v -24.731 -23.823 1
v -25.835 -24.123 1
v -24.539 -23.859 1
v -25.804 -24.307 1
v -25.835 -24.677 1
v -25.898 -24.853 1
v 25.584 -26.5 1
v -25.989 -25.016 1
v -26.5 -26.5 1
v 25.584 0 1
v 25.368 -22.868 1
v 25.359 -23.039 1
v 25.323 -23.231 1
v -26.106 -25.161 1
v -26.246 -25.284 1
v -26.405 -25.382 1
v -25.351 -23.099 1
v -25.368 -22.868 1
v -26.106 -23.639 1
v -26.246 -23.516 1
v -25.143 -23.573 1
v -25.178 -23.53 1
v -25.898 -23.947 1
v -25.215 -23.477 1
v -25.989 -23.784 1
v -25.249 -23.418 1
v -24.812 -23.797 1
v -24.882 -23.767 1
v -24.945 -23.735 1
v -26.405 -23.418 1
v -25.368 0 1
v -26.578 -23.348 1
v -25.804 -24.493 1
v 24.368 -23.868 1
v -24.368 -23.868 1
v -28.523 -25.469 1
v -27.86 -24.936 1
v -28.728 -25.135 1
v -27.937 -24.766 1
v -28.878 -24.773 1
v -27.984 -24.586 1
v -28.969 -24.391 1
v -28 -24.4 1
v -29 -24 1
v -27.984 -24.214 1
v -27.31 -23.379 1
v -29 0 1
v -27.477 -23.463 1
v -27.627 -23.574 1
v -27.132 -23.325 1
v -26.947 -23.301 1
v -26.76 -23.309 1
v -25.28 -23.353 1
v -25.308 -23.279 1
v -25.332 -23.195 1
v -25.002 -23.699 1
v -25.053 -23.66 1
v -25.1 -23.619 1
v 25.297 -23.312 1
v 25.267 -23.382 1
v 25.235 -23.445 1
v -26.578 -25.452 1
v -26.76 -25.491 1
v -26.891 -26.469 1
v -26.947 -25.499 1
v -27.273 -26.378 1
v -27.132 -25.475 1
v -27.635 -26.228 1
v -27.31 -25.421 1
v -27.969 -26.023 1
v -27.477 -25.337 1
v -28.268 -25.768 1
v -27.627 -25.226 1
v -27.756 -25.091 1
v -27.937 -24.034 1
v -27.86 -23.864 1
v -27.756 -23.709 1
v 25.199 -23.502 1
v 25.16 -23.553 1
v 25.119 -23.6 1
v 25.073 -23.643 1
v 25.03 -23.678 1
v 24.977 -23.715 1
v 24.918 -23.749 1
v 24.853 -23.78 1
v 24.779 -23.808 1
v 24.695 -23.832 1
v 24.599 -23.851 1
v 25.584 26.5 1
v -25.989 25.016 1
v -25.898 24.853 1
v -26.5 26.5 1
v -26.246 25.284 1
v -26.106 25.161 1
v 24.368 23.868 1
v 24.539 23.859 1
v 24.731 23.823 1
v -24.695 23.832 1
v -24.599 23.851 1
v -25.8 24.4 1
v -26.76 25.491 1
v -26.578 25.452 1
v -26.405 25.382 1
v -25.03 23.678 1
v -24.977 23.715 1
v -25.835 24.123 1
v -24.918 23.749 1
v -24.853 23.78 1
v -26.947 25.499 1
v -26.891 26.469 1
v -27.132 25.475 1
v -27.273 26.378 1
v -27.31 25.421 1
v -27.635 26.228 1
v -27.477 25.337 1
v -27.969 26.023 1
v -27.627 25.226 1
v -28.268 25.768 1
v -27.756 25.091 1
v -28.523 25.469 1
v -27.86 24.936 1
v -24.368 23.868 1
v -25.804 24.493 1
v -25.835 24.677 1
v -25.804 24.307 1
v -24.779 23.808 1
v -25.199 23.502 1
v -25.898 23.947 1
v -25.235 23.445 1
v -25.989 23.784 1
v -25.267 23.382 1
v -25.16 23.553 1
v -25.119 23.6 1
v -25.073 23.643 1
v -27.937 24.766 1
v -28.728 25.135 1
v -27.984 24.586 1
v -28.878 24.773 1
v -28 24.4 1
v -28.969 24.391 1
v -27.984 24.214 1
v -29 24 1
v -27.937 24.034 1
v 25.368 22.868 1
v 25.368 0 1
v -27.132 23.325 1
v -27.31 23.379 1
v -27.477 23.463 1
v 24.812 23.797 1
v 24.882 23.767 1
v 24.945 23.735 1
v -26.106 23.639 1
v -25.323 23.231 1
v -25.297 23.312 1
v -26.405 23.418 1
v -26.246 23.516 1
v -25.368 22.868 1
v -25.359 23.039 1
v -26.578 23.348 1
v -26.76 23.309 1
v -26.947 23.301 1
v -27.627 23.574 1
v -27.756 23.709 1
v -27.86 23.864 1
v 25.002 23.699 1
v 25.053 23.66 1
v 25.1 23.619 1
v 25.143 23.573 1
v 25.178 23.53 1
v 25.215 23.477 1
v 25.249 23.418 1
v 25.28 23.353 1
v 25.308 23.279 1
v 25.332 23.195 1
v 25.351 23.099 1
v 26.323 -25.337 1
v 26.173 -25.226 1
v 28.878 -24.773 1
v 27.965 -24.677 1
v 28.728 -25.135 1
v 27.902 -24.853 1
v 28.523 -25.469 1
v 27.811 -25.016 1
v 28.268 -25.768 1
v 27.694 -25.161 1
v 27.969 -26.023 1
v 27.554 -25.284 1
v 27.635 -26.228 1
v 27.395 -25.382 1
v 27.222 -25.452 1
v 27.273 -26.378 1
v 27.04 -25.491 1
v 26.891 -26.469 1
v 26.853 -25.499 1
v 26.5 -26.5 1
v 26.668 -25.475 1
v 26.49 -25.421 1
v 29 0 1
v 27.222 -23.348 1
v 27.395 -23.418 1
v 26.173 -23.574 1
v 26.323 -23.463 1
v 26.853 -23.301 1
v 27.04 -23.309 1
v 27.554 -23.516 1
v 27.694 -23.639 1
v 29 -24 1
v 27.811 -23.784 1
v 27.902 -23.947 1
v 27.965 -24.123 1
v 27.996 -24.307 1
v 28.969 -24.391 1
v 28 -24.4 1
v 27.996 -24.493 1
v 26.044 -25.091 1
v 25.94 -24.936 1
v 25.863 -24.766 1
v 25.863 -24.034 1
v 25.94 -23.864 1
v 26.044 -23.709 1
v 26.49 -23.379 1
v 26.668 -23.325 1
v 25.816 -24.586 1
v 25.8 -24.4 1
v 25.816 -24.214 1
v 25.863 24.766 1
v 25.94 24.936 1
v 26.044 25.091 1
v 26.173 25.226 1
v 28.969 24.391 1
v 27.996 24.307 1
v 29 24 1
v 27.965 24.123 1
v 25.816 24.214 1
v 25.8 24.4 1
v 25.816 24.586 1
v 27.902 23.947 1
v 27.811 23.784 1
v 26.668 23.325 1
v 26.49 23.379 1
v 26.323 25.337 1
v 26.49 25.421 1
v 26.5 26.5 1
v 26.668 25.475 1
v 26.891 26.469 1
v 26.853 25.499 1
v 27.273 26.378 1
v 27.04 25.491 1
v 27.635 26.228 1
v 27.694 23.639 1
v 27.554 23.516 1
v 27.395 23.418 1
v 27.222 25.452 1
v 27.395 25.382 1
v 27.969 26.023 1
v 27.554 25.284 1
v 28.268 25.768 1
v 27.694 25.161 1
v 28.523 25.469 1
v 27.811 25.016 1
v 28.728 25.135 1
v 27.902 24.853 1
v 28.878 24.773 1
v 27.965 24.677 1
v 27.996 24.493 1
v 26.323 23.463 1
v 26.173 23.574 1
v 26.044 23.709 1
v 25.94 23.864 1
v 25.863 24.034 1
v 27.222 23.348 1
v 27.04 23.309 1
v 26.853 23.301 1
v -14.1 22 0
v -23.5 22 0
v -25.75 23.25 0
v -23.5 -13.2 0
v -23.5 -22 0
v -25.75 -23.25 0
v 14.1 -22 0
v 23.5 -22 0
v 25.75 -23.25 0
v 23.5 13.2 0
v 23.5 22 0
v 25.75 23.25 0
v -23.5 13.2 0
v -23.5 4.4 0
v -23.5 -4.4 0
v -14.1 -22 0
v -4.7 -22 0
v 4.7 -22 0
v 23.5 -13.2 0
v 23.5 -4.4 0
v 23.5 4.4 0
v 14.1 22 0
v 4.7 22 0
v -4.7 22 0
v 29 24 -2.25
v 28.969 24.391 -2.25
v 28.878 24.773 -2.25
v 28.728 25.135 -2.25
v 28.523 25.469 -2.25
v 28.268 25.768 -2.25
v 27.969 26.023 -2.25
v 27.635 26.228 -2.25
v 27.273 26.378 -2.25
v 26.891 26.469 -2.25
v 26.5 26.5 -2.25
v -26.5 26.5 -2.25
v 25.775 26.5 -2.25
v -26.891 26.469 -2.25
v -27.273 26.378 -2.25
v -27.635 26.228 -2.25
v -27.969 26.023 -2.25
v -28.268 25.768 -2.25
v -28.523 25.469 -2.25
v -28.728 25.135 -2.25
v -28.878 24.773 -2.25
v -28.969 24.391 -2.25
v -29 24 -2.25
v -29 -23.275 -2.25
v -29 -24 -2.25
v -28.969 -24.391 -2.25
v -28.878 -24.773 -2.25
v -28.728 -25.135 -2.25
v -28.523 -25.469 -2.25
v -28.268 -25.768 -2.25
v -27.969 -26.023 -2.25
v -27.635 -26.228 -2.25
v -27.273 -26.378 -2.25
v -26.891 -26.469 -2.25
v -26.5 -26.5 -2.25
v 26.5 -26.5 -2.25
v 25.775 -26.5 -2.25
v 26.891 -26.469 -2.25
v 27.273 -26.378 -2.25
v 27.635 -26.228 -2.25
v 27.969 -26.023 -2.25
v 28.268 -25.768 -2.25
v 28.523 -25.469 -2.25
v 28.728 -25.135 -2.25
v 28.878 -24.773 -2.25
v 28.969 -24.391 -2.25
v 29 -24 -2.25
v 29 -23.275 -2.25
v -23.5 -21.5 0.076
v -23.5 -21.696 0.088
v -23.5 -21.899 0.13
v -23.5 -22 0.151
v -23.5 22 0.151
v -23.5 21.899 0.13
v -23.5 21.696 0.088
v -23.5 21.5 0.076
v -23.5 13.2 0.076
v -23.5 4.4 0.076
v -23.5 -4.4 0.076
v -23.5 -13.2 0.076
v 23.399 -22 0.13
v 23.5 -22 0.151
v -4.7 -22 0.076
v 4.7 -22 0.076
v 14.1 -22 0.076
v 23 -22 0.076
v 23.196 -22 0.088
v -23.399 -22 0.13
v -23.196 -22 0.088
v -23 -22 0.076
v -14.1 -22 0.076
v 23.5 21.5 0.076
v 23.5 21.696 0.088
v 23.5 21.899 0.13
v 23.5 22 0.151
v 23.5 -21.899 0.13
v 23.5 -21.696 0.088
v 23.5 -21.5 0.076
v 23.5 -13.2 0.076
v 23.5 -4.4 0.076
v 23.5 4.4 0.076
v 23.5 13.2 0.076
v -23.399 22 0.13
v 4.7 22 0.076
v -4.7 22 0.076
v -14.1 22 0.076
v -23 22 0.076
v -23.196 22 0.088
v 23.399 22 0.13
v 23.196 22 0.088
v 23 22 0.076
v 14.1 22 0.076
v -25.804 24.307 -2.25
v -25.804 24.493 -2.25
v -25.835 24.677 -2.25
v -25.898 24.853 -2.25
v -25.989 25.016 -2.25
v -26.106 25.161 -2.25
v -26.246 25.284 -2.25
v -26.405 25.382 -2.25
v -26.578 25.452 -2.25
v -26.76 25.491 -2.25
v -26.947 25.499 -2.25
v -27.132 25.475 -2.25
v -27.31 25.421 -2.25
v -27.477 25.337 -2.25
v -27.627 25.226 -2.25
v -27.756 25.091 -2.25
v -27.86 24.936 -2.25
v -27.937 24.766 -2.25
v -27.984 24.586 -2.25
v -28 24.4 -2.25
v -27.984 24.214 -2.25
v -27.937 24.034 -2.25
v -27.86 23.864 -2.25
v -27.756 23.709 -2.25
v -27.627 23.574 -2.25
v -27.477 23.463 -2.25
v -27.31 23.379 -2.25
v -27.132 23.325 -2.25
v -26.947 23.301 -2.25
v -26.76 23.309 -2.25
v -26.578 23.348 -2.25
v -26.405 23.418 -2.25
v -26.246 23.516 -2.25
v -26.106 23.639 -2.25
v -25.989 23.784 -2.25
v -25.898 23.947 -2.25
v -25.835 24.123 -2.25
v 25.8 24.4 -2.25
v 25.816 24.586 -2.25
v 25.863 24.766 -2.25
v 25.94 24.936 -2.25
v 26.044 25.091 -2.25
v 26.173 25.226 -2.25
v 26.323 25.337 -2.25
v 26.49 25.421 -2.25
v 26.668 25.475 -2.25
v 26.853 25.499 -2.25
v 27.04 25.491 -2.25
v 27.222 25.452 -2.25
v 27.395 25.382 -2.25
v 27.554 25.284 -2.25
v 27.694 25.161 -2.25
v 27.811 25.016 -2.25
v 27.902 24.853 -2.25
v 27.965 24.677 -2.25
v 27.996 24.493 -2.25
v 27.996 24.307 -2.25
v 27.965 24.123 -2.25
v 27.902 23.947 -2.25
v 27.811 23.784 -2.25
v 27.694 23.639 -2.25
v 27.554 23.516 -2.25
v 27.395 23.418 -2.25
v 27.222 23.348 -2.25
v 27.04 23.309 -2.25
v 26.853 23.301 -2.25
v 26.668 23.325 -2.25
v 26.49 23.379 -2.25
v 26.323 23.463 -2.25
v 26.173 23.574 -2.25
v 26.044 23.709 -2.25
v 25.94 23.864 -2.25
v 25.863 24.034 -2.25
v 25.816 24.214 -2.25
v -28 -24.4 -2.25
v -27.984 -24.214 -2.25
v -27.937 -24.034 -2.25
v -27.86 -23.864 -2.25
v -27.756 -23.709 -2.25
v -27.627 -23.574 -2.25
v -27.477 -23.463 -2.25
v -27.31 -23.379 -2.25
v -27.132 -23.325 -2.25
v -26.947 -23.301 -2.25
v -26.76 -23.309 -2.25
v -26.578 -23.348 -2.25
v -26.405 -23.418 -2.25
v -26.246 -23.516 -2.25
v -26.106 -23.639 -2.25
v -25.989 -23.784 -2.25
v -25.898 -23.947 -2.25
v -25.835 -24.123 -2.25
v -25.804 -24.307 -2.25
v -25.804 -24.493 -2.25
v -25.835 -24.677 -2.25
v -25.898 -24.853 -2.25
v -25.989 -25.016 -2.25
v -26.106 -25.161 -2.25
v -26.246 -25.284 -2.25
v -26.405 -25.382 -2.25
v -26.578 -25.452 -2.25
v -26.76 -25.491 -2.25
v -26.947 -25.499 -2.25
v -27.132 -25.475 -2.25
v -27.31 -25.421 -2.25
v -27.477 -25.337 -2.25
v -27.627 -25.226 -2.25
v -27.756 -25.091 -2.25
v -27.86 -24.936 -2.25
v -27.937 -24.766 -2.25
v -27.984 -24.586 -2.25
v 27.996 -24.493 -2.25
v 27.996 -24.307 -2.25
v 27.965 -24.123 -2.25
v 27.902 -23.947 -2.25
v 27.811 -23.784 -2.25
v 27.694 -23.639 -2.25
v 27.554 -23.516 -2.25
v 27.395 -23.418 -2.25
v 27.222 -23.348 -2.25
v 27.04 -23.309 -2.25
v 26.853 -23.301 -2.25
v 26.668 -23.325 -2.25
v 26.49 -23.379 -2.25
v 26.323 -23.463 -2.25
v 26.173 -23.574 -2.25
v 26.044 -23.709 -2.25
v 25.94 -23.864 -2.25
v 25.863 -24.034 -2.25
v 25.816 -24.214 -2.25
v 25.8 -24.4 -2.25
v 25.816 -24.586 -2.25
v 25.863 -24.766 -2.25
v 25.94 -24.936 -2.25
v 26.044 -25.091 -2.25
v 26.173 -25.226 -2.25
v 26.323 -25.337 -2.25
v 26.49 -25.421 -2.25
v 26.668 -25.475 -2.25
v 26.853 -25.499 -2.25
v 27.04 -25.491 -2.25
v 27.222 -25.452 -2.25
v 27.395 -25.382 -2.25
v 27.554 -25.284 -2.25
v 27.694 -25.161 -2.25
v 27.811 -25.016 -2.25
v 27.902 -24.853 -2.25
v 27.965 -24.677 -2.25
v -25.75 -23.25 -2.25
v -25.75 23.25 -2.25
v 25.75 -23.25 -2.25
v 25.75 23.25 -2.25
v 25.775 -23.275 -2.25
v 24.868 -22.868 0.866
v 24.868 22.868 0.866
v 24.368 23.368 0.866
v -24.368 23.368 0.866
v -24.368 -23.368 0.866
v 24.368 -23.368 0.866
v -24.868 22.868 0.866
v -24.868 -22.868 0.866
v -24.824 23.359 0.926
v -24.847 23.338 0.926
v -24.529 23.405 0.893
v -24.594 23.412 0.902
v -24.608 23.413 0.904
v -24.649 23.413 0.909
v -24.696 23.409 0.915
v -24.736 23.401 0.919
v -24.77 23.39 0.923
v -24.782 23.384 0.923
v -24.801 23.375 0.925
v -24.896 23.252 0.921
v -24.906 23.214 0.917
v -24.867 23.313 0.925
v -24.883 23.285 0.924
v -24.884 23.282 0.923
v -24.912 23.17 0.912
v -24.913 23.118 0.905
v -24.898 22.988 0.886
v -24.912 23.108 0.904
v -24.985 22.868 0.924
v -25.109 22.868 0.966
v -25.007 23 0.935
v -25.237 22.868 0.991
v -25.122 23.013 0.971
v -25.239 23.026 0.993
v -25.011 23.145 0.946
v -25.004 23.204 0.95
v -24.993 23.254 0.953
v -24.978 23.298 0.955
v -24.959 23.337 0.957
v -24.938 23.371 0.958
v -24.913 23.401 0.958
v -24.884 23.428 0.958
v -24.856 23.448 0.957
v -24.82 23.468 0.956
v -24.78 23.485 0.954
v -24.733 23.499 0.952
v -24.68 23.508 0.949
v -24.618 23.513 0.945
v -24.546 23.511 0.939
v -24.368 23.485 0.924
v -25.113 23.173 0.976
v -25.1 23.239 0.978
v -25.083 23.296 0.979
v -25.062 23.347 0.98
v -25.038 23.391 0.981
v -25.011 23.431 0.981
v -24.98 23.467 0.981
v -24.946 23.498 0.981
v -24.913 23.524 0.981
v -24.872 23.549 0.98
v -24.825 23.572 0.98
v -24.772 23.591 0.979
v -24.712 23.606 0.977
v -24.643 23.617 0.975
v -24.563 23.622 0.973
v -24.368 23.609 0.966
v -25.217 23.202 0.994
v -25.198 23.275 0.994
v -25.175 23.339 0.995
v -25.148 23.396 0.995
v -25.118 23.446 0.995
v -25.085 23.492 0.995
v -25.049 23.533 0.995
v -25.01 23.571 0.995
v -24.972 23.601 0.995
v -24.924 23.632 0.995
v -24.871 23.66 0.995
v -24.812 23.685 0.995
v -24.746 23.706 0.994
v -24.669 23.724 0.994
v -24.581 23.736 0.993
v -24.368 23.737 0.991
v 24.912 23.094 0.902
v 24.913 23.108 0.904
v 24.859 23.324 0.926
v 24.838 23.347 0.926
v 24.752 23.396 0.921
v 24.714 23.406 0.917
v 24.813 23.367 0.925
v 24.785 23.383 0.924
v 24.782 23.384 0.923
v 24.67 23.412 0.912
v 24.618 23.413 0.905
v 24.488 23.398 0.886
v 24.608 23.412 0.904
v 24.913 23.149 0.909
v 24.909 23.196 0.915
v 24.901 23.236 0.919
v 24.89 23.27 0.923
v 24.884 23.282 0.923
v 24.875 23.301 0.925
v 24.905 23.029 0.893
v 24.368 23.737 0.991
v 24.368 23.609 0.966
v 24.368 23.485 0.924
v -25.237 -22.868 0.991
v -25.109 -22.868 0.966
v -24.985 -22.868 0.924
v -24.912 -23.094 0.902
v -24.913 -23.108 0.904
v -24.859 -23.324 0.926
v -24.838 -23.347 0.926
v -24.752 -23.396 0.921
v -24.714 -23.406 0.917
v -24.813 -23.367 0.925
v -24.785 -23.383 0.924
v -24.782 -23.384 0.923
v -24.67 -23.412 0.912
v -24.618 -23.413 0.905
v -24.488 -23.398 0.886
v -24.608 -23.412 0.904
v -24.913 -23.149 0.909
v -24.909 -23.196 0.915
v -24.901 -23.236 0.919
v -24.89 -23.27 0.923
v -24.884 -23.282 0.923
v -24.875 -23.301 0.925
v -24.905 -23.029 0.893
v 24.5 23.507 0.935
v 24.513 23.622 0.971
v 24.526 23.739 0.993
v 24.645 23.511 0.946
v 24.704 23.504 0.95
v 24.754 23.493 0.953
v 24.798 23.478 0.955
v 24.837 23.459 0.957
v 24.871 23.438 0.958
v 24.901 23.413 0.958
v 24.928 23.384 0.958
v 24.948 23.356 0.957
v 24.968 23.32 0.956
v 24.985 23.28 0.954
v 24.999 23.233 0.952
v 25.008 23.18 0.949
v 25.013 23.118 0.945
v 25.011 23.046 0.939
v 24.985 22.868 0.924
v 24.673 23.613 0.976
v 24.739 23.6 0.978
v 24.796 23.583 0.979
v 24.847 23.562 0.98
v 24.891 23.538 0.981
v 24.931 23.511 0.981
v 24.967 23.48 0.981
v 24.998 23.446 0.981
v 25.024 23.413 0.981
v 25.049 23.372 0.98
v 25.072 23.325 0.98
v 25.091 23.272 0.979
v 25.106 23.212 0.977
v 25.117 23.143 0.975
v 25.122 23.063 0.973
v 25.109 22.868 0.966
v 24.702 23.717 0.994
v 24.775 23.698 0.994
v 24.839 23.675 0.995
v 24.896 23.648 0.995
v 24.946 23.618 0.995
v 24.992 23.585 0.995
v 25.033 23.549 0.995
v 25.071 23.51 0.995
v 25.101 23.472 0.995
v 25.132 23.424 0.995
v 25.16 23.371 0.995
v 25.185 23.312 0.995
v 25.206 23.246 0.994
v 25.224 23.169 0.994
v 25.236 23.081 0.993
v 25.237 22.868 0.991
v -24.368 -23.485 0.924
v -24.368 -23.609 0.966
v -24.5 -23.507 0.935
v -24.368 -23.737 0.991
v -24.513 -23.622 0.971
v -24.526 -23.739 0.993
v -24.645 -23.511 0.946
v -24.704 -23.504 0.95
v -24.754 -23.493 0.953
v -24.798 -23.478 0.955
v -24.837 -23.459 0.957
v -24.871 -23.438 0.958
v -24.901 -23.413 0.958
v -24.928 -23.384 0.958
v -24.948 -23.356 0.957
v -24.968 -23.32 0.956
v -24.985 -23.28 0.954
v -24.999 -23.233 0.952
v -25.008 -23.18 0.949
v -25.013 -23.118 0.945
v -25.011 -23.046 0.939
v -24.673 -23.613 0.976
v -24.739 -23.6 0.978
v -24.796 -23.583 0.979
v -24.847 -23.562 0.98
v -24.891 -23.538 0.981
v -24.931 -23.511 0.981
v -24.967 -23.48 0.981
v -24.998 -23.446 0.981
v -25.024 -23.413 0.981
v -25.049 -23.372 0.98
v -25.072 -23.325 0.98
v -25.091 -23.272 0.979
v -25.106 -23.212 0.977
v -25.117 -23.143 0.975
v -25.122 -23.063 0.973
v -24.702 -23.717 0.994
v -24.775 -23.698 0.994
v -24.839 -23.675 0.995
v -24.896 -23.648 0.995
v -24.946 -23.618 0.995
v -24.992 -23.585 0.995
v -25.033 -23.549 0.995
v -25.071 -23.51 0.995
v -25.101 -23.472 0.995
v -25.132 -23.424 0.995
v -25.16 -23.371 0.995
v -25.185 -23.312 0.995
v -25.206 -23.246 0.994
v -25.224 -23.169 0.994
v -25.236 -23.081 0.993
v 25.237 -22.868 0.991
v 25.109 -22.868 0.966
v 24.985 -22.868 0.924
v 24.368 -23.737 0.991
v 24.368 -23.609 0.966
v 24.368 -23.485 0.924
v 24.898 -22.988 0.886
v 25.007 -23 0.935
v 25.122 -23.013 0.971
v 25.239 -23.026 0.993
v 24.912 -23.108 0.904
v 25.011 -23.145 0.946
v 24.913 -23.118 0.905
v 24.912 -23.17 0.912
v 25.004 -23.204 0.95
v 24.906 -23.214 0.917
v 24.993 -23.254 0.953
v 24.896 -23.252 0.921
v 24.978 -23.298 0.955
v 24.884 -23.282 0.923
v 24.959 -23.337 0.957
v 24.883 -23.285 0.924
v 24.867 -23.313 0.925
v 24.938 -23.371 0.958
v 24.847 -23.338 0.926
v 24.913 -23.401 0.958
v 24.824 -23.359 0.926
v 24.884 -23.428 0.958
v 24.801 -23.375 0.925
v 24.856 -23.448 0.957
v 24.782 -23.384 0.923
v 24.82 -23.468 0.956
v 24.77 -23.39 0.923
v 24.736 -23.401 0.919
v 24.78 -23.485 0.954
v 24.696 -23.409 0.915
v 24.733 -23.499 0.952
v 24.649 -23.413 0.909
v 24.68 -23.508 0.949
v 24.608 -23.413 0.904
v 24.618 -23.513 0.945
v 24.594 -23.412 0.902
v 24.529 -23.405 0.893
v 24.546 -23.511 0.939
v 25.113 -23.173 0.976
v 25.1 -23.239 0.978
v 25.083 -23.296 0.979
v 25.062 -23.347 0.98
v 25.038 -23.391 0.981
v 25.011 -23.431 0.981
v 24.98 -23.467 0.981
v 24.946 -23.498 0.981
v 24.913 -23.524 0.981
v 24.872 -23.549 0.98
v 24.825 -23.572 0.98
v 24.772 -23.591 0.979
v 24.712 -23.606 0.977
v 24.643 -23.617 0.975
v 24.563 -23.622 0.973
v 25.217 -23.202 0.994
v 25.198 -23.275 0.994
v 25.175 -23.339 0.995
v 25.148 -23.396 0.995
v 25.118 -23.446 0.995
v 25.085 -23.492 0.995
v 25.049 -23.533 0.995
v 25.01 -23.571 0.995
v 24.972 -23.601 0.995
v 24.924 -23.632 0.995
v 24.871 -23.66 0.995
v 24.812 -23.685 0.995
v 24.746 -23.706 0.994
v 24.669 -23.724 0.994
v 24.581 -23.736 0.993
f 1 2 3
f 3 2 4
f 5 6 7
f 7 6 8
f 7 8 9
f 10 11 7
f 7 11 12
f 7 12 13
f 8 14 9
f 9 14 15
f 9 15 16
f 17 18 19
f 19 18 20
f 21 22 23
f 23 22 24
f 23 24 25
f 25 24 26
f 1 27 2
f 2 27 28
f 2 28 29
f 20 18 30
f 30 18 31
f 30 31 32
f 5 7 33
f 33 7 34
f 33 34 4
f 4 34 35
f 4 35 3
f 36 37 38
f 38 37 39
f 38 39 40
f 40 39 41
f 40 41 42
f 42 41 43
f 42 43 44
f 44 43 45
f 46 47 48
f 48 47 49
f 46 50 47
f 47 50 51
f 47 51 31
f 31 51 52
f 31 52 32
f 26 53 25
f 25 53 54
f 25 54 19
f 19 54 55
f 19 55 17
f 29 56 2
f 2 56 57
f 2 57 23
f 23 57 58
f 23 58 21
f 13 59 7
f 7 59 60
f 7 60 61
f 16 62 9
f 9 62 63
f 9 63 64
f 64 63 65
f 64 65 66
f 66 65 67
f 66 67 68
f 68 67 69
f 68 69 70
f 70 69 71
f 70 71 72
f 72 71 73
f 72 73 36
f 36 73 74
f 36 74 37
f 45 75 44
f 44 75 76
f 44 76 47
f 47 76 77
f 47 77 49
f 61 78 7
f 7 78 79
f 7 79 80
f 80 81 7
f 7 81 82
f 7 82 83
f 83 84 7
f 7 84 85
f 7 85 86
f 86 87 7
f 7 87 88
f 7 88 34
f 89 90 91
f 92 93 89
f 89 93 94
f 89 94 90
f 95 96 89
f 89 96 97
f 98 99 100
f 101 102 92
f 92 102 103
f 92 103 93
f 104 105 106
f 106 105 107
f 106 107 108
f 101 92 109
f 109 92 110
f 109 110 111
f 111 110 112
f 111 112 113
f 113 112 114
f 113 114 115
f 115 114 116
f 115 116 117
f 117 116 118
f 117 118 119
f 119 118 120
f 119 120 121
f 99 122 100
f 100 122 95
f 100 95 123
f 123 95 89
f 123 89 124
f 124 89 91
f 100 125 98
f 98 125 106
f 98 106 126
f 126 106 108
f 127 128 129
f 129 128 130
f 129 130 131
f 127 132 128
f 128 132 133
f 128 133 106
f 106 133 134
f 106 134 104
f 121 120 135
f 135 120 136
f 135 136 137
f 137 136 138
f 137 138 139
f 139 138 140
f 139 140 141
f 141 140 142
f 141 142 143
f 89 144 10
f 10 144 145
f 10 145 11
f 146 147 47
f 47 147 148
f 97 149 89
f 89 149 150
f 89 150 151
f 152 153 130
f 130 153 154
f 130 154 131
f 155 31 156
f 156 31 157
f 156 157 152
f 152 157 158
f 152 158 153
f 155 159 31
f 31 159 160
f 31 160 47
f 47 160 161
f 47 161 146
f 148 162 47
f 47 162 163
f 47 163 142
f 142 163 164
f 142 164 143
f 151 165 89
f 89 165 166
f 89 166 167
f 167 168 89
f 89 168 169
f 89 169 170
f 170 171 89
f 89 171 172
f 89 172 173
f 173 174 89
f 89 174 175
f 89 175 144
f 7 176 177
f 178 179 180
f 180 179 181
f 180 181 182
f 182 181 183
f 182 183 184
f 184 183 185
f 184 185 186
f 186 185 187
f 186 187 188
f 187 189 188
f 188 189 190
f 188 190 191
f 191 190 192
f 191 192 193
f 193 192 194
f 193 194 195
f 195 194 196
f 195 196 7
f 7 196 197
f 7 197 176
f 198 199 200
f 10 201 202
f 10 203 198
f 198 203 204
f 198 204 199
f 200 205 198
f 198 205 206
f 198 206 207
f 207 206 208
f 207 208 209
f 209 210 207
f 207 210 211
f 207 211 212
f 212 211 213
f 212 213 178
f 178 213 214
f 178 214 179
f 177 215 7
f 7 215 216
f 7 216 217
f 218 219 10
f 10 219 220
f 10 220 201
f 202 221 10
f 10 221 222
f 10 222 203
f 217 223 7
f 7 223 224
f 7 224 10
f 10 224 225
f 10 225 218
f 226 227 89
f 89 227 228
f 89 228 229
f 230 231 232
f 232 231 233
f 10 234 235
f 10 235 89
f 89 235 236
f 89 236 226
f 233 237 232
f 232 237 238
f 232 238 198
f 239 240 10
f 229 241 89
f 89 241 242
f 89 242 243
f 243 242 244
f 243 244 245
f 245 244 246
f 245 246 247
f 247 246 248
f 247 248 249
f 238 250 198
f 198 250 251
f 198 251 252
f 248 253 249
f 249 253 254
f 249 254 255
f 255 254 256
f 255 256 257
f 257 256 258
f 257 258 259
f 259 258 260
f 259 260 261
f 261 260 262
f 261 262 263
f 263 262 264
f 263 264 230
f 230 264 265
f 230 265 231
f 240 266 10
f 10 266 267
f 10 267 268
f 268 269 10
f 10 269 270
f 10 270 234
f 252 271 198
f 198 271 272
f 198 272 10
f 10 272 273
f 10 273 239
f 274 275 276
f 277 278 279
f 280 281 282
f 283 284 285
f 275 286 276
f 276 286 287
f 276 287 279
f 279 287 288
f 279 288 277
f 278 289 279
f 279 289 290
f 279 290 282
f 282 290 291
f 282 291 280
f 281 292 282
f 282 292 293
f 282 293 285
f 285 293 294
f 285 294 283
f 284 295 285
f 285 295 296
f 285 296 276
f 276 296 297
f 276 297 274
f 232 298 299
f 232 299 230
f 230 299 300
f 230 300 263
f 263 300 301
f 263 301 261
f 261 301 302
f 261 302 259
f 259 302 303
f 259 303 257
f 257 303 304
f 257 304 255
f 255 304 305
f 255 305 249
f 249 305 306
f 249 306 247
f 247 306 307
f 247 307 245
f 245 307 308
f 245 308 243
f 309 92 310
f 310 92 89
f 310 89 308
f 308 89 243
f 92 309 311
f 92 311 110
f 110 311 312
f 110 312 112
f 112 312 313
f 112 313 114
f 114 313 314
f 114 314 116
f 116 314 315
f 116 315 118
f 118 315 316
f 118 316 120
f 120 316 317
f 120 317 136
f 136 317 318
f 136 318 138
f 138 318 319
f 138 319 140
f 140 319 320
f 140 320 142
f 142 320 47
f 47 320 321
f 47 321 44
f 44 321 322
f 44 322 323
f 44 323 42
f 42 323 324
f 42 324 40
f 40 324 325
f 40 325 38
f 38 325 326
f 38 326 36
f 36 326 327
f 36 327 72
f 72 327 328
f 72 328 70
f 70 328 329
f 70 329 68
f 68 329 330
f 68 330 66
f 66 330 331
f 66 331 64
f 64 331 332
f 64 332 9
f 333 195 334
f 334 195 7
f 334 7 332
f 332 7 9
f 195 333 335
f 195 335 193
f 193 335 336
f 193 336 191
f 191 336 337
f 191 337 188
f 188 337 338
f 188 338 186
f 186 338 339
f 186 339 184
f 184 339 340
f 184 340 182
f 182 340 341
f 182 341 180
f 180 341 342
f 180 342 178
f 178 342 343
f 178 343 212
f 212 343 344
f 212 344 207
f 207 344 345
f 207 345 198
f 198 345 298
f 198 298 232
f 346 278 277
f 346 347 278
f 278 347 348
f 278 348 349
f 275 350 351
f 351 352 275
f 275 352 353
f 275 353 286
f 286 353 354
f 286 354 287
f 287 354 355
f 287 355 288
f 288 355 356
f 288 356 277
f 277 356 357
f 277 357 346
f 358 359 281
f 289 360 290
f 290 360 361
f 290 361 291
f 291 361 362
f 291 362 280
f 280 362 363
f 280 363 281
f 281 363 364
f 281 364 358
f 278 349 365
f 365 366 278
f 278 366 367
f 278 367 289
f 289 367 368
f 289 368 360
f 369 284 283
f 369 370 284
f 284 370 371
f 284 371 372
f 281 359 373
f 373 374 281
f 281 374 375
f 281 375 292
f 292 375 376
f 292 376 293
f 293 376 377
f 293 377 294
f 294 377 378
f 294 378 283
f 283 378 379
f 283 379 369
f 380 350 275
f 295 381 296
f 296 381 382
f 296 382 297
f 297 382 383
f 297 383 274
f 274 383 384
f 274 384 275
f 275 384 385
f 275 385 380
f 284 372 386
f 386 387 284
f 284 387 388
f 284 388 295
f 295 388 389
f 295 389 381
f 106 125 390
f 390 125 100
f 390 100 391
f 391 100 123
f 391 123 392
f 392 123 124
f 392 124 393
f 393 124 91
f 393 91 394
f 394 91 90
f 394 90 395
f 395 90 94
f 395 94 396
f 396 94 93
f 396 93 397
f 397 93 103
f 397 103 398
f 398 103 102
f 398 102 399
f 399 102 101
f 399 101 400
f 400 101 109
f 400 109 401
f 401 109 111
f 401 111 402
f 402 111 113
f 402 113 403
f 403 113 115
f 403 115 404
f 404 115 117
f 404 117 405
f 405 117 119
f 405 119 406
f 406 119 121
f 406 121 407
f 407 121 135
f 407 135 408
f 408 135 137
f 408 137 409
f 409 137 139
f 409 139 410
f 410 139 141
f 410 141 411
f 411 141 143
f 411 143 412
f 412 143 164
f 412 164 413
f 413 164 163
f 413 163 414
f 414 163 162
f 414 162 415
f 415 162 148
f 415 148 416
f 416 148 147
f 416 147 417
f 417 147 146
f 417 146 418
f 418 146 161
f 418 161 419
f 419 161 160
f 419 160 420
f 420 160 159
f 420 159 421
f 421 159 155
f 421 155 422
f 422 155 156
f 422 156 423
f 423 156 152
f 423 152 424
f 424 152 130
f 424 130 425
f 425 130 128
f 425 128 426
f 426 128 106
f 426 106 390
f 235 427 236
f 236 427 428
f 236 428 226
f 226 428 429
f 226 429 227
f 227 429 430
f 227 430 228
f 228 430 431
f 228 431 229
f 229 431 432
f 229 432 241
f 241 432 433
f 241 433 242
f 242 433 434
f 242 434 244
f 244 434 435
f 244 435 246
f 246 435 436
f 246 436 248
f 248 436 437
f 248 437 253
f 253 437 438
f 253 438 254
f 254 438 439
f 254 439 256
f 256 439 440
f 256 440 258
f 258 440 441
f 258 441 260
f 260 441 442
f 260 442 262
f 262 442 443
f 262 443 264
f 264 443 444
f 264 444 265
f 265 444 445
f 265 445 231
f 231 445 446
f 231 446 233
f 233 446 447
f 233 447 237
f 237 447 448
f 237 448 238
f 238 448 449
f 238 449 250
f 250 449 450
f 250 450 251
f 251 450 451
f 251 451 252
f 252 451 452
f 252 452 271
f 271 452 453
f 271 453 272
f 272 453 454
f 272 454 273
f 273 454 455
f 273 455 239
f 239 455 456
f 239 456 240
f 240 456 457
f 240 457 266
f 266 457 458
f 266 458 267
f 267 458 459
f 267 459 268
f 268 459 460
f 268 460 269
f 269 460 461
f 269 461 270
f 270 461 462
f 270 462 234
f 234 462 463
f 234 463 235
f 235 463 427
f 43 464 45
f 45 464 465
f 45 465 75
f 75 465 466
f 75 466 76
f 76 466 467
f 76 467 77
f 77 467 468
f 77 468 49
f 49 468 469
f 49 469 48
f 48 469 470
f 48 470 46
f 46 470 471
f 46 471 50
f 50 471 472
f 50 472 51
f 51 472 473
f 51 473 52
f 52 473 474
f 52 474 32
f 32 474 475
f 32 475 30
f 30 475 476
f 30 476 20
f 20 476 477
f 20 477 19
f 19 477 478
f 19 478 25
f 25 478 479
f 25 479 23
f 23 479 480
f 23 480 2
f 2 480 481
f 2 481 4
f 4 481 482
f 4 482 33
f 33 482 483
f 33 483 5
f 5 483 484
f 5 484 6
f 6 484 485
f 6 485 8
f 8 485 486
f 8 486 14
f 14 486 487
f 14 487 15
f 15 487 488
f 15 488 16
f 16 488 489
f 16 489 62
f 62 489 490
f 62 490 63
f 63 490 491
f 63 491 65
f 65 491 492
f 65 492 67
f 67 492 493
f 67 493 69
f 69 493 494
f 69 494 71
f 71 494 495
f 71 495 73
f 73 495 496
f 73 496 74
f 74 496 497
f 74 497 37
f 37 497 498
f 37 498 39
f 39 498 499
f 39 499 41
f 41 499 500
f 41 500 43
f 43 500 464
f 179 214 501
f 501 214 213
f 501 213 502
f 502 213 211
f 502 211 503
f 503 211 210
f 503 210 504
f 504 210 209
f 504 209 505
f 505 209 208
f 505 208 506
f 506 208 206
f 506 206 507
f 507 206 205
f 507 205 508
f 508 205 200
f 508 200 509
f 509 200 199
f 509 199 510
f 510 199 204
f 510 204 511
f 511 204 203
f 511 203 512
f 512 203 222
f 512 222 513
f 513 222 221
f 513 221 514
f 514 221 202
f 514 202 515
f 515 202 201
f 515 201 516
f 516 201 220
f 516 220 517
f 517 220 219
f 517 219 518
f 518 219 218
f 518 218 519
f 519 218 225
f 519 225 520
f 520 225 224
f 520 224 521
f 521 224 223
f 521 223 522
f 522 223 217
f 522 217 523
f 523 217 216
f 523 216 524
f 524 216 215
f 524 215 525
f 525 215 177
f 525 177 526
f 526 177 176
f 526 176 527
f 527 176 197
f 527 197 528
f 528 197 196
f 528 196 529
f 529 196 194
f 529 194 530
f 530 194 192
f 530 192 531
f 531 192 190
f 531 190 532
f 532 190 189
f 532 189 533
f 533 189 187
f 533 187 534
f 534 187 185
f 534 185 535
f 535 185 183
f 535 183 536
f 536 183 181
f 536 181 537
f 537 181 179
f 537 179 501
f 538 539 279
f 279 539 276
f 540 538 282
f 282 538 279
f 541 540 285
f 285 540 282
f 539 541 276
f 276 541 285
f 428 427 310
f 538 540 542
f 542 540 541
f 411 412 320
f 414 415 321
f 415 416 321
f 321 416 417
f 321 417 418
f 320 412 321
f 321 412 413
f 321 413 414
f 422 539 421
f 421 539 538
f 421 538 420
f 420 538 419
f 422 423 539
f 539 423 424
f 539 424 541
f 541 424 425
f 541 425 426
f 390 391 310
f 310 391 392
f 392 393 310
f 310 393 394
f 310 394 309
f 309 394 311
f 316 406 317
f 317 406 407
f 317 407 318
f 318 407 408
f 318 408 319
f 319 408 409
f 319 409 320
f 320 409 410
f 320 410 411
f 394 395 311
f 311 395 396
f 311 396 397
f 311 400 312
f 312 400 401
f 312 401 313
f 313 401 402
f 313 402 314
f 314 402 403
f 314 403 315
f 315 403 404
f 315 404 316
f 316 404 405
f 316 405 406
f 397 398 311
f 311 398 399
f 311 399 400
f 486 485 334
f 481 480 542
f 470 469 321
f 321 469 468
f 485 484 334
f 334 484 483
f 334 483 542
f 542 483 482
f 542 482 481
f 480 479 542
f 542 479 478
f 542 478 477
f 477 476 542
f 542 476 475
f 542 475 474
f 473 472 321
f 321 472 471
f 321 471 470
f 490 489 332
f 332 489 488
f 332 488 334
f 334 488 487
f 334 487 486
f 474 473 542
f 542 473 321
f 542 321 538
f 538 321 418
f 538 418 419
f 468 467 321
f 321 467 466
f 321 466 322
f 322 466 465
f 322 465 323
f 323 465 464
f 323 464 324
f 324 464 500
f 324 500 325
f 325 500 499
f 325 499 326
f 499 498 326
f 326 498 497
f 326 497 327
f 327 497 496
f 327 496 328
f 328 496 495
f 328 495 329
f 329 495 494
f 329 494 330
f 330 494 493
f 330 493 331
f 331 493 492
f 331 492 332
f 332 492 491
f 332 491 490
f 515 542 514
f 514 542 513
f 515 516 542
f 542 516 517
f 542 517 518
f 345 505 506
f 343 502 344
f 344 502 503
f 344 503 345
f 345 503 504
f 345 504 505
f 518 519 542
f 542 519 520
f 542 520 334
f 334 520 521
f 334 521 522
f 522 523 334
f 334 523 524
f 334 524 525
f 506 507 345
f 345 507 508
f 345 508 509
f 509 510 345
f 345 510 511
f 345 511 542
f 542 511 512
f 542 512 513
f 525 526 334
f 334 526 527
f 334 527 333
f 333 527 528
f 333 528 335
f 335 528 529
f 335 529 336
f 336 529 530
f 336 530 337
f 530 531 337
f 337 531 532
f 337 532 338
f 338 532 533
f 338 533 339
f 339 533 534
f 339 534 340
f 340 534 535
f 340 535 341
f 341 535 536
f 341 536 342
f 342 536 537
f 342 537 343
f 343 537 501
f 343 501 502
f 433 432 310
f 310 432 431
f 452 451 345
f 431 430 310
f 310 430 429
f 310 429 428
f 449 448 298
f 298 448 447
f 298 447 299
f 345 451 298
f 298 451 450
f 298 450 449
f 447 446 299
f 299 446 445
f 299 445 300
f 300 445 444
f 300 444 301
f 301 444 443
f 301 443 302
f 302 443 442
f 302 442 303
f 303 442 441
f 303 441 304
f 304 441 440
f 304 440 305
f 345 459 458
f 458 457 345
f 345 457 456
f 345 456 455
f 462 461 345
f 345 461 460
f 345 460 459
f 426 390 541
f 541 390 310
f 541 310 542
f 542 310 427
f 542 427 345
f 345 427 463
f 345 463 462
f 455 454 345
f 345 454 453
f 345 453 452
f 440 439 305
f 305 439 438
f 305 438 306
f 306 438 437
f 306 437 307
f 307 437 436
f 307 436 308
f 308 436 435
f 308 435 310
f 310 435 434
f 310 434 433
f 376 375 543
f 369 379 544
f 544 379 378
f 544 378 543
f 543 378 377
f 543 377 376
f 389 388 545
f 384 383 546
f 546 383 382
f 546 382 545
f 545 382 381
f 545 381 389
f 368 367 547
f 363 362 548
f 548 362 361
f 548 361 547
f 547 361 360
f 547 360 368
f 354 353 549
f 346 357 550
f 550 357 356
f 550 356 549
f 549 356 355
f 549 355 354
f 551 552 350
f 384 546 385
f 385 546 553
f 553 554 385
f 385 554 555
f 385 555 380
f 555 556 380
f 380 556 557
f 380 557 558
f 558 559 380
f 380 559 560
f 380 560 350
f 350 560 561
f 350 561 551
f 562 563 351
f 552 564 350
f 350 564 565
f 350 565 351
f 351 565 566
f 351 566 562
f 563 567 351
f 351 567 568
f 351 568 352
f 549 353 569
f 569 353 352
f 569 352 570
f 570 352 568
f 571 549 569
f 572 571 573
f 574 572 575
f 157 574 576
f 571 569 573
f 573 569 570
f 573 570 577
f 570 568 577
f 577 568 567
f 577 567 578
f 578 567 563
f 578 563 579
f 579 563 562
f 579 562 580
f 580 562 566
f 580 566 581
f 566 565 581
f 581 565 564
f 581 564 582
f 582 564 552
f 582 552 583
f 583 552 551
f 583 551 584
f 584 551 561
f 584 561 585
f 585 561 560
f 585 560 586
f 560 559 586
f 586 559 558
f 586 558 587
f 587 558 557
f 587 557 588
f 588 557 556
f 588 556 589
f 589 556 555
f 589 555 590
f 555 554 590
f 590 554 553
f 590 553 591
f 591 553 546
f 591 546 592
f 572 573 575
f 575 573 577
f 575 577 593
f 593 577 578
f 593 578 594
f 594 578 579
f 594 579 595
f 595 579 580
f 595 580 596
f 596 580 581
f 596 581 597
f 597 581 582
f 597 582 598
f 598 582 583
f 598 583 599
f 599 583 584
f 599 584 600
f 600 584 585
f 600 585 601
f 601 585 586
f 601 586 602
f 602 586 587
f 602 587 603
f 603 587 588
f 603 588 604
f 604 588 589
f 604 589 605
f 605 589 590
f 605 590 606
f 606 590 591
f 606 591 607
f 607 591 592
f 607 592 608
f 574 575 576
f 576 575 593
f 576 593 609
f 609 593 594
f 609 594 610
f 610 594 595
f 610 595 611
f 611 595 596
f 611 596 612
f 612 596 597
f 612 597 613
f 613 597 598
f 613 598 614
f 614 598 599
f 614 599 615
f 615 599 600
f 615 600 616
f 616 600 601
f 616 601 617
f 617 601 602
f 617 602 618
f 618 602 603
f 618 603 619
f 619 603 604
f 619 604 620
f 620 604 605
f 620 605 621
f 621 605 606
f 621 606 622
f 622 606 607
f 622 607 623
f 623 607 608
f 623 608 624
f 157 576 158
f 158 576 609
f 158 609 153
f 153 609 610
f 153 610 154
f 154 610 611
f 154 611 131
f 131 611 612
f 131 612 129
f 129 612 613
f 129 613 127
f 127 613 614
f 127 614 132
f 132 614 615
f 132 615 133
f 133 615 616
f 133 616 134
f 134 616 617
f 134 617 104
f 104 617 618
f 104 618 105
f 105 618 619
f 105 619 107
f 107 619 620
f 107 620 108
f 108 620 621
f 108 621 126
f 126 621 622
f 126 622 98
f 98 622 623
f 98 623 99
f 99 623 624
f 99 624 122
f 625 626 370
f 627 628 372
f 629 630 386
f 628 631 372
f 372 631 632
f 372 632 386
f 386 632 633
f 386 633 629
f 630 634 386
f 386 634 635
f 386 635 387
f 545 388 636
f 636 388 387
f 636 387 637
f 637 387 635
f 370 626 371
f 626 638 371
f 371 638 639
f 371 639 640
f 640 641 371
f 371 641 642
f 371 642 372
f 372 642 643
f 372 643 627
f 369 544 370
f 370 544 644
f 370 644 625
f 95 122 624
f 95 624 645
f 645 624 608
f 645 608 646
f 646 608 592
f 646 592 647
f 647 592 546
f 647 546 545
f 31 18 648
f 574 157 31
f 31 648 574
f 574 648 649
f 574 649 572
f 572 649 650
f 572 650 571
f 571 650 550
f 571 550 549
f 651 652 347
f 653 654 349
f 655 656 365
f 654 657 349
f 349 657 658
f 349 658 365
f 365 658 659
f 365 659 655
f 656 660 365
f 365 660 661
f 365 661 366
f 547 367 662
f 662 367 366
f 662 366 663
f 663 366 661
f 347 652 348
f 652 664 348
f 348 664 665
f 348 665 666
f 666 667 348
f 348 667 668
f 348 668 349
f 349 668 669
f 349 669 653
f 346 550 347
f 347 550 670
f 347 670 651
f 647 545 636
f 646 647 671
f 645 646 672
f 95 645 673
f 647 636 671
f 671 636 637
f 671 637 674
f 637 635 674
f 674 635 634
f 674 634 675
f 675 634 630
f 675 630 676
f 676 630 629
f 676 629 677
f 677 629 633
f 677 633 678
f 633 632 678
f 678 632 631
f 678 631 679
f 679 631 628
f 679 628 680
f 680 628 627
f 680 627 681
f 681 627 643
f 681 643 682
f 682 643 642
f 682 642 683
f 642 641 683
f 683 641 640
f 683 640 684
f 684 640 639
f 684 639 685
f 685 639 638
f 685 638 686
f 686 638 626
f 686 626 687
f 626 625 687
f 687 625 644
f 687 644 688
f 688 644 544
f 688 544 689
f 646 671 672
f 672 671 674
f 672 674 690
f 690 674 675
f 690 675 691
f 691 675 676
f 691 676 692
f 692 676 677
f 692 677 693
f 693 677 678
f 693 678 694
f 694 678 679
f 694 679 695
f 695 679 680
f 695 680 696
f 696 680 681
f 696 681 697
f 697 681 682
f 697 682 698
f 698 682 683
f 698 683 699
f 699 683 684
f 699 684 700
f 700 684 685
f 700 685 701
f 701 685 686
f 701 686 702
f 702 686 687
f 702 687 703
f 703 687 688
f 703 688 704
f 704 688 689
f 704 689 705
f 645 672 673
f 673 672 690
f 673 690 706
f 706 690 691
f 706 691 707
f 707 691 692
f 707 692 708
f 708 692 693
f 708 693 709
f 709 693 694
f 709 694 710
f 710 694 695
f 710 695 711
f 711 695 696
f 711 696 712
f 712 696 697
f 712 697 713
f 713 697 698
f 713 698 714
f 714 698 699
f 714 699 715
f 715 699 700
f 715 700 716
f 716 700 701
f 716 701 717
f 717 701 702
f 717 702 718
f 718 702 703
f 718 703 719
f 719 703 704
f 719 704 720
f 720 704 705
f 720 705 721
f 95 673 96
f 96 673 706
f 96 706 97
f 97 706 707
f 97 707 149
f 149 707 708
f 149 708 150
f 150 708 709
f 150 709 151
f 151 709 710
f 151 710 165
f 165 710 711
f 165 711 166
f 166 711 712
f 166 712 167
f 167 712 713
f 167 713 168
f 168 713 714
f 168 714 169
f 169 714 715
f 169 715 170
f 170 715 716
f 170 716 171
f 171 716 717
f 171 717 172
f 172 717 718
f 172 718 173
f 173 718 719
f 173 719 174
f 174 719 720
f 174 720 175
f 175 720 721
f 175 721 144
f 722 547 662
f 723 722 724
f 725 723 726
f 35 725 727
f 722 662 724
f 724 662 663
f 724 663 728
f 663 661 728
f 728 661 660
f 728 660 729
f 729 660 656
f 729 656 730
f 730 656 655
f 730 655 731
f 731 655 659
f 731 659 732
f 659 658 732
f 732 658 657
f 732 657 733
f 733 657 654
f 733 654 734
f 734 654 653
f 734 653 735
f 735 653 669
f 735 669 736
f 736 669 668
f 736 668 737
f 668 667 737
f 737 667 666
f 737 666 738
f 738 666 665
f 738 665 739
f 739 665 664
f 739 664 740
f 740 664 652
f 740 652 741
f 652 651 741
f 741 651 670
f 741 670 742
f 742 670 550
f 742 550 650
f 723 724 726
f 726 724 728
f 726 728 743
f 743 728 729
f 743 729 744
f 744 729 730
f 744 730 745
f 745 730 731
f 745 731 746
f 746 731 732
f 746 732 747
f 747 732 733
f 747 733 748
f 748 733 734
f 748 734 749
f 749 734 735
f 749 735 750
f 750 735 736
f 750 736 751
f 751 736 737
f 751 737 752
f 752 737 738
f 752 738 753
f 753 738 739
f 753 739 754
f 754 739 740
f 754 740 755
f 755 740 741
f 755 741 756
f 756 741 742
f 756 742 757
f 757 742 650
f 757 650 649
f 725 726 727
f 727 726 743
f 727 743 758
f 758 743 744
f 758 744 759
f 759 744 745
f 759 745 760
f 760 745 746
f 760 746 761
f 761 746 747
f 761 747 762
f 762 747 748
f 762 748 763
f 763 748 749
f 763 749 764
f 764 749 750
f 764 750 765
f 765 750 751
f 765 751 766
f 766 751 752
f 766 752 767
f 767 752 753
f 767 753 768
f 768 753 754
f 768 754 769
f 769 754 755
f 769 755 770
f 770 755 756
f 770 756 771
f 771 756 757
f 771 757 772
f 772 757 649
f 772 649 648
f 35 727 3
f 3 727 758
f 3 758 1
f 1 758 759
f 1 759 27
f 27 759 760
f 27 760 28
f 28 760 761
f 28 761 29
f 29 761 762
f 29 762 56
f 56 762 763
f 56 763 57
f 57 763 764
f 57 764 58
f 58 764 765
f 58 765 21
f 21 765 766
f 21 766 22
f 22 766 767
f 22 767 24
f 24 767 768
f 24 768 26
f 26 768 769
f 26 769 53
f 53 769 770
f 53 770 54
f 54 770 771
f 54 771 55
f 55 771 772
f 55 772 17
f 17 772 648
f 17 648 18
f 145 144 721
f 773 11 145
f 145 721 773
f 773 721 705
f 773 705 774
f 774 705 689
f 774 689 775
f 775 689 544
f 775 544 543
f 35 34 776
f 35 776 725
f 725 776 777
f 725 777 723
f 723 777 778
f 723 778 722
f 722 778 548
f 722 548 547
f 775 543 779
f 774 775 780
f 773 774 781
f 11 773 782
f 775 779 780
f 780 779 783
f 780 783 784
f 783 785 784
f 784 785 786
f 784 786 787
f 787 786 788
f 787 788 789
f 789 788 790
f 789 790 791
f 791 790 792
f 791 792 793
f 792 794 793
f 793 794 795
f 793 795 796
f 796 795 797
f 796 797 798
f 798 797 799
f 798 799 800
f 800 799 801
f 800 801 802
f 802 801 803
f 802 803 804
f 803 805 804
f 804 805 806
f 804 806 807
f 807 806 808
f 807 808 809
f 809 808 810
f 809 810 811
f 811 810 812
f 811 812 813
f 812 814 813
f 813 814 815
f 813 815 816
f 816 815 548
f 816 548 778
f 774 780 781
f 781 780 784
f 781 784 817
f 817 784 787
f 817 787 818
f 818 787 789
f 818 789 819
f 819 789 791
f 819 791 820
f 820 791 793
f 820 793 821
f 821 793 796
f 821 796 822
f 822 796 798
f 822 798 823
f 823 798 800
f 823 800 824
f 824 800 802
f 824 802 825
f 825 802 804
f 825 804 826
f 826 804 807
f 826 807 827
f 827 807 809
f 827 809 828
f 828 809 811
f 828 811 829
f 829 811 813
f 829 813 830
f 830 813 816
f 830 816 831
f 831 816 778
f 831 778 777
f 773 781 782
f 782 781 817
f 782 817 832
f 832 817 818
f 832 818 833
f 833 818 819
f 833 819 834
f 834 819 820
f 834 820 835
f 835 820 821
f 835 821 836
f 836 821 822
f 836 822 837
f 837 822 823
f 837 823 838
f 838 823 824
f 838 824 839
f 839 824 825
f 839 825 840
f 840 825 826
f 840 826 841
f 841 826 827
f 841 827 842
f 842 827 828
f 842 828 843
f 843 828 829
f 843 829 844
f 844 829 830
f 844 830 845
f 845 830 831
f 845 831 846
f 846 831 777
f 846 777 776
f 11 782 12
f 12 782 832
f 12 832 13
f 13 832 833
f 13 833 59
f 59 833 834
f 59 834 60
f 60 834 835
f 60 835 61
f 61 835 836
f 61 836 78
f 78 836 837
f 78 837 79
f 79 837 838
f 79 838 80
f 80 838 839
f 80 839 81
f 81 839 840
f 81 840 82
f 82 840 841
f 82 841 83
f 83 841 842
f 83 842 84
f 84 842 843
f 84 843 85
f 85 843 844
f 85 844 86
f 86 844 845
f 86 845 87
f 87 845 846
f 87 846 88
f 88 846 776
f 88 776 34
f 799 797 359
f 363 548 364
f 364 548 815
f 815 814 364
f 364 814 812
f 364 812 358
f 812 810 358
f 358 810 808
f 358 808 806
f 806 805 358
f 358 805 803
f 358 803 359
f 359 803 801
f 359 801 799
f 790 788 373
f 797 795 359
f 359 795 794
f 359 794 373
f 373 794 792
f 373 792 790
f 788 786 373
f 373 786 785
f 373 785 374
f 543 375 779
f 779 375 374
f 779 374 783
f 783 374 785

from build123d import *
from build123d.topology import SkipClean

# Parameters (mm, degrees)
SKETCH_1_R      = 1.1
SKETCH_1_W      = 47
SKETCH_1_H      = 44
EXTRUDE_1_DEPTH = 1
EXTRUDE_START   = 2.25
SKETCH_2_R      = 1.1
SKETCH_2_W      = 51.5
SKETCH_2_H      = 46.5
EXTRUDE_2_DEPTH = 2.25
CHAMFER_1_SIZE  = 1.6
CHAMFER_1_SIZE2 = 0.923760431
FILLET_1_R      = 1


with BuildPart() as part:
    # 草图1 → 凸台-拉伸1 (new body)
    with BuildSketch(Plane.XY):
        with BuildLine():
            Line((-26.5, -26.5), (26.5, -26.5))
            ThreePointArc((26.5, -26.5), (28.267766953, -25.767766953), (29, -24))
            Line((29, -24), (29, 24))
            ThreePointArc((29, 24), (28.267766953, 25.767766953), (26.5, 26.5))
            Line((26.5, 26.5), (-26.5, 26.5))
            ThreePointArc((-26.5, 26.5), (-28.267766953, 25.767766953), (-29, 24))
            Line((-29, 24), (-29, -24))
            ThreePointArc((-29, -24), (-28.267766953, -25.767766953), (-26.5, -26.5))
        make_face()
        with Locations((-26.9, 24.4)):
            Circle(SKETCH_1_R, mode=Mode.SUBTRACT)
        with Locations(Location((26.9, 24.4, 0), (0, 0, 180))):
            Circle(SKETCH_1_R, mode=Mode.SUBTRACT)
        with Locations(Location((-26.9, -24.4, 0), (0, 0, 180))):
            Circle(SKETCH_1_R, mode=Mode.SUBTRACT)
        with Locations((26.9, -24.4)):
            Circle(SKETCH_1_R, mode=Mode.SUBTRACT)
        Rectangle(SKETCH_1_W, SKETCH_1_H, mode=Mode.SUBTRACT)
    extrude(amount=EXTRUDE_1_DEPTH)

    # 草图2 → 凸台-拉伸2 (add)
    with SkipClean():  # the faces are left unmerged after this step: merging them gives an invalid solid
        with BuildSketch(Plane(origin=(0, 0, 0), x_dir=(-1, 0, 0), z_dir=(0, 0, -1)).offset(EXTRUDE_START)):
            with BuildLine():
                Line((26.5, 26.5), (-26.5, 26.5))
                ThreePointArc((-26.5, 26.5), (-28.267766953, 25.767766953), (-29, 24))
                Line((-29, 24), (-29, -24))
                ThreePointArc((-29, -24), (-28.267766953, -25.767766953), (-26.5, -26.5))
                Line((-26.5, -26.5), (26.5, -26.5))
                ThreePointArc((26.5, -26.5), (28.267766953, -25.767766953), (29, -24))
                Line((29, -24), (29, 24))
                ThreePointArc((29, 24), (28.267766953, 25.767766953), (26.5, 26.5))
            make_face()
            with Locations((26.9, -24.4)):
                Circle(SKETCH_2_R, mode=Mode.SUBTRACT)
            with Locations((-26.9, -24.4)):
                Circle(SKETCH_2_R, mode=Mode.SUBTRACT)
            with Locations((-26.9, 24.4)):
                Circle(SKETCH_2_R, mode=Mode.SUBTRACT)
            with Locations((26.9, 24.4)):
                Circle(SKETCH_2_R, mode=Mode.SUBTRACT)
            Rectangle(SKETCH_2_W, SKETCH_2_H, mode=Mode.SUBTRACT)
        extrude(amount=-EXTRUDE_2_DEPTH)

    # 倒角1
    chamfer_1_edges = [part.edges().sort_by_distance(p)[0] for p in [
        (-23.5, 0, 1),
        (0, -22, 1),
        (23.5, 0, 1),
        (0, 22, 1),
    ]]
    chamfer_1_side = [part.faces().sort_by_distance(p)[0] for p in [
        (0, -25.714315585, 1),
    ]]
    chamfer(chamfer_1_edges, length=CHAMFER_1_SIZE, length2=CHAMFER_1_SIZE2, reference=chamfer_1_side[0])

    # 圆角1
    fillet_1_edges = [part.edges().sort_by_distance(p)[0] for p in [
        (0, 23.6, 1),
        (25.1, 0, 1),
        (0, -23.6, 1),
        (-25.1, 0, 1),
        (24.3, 22.8, 0.538119785),
        (24.3, -22.8, 0.538119785),
        (-24.3, 22.8, 0.538119785),
        (-24.3, -22.8, 0.538119785),
    ]]
    fillet(fillet_1_edges, radius=FILLET_1_R)


solid = part.part
